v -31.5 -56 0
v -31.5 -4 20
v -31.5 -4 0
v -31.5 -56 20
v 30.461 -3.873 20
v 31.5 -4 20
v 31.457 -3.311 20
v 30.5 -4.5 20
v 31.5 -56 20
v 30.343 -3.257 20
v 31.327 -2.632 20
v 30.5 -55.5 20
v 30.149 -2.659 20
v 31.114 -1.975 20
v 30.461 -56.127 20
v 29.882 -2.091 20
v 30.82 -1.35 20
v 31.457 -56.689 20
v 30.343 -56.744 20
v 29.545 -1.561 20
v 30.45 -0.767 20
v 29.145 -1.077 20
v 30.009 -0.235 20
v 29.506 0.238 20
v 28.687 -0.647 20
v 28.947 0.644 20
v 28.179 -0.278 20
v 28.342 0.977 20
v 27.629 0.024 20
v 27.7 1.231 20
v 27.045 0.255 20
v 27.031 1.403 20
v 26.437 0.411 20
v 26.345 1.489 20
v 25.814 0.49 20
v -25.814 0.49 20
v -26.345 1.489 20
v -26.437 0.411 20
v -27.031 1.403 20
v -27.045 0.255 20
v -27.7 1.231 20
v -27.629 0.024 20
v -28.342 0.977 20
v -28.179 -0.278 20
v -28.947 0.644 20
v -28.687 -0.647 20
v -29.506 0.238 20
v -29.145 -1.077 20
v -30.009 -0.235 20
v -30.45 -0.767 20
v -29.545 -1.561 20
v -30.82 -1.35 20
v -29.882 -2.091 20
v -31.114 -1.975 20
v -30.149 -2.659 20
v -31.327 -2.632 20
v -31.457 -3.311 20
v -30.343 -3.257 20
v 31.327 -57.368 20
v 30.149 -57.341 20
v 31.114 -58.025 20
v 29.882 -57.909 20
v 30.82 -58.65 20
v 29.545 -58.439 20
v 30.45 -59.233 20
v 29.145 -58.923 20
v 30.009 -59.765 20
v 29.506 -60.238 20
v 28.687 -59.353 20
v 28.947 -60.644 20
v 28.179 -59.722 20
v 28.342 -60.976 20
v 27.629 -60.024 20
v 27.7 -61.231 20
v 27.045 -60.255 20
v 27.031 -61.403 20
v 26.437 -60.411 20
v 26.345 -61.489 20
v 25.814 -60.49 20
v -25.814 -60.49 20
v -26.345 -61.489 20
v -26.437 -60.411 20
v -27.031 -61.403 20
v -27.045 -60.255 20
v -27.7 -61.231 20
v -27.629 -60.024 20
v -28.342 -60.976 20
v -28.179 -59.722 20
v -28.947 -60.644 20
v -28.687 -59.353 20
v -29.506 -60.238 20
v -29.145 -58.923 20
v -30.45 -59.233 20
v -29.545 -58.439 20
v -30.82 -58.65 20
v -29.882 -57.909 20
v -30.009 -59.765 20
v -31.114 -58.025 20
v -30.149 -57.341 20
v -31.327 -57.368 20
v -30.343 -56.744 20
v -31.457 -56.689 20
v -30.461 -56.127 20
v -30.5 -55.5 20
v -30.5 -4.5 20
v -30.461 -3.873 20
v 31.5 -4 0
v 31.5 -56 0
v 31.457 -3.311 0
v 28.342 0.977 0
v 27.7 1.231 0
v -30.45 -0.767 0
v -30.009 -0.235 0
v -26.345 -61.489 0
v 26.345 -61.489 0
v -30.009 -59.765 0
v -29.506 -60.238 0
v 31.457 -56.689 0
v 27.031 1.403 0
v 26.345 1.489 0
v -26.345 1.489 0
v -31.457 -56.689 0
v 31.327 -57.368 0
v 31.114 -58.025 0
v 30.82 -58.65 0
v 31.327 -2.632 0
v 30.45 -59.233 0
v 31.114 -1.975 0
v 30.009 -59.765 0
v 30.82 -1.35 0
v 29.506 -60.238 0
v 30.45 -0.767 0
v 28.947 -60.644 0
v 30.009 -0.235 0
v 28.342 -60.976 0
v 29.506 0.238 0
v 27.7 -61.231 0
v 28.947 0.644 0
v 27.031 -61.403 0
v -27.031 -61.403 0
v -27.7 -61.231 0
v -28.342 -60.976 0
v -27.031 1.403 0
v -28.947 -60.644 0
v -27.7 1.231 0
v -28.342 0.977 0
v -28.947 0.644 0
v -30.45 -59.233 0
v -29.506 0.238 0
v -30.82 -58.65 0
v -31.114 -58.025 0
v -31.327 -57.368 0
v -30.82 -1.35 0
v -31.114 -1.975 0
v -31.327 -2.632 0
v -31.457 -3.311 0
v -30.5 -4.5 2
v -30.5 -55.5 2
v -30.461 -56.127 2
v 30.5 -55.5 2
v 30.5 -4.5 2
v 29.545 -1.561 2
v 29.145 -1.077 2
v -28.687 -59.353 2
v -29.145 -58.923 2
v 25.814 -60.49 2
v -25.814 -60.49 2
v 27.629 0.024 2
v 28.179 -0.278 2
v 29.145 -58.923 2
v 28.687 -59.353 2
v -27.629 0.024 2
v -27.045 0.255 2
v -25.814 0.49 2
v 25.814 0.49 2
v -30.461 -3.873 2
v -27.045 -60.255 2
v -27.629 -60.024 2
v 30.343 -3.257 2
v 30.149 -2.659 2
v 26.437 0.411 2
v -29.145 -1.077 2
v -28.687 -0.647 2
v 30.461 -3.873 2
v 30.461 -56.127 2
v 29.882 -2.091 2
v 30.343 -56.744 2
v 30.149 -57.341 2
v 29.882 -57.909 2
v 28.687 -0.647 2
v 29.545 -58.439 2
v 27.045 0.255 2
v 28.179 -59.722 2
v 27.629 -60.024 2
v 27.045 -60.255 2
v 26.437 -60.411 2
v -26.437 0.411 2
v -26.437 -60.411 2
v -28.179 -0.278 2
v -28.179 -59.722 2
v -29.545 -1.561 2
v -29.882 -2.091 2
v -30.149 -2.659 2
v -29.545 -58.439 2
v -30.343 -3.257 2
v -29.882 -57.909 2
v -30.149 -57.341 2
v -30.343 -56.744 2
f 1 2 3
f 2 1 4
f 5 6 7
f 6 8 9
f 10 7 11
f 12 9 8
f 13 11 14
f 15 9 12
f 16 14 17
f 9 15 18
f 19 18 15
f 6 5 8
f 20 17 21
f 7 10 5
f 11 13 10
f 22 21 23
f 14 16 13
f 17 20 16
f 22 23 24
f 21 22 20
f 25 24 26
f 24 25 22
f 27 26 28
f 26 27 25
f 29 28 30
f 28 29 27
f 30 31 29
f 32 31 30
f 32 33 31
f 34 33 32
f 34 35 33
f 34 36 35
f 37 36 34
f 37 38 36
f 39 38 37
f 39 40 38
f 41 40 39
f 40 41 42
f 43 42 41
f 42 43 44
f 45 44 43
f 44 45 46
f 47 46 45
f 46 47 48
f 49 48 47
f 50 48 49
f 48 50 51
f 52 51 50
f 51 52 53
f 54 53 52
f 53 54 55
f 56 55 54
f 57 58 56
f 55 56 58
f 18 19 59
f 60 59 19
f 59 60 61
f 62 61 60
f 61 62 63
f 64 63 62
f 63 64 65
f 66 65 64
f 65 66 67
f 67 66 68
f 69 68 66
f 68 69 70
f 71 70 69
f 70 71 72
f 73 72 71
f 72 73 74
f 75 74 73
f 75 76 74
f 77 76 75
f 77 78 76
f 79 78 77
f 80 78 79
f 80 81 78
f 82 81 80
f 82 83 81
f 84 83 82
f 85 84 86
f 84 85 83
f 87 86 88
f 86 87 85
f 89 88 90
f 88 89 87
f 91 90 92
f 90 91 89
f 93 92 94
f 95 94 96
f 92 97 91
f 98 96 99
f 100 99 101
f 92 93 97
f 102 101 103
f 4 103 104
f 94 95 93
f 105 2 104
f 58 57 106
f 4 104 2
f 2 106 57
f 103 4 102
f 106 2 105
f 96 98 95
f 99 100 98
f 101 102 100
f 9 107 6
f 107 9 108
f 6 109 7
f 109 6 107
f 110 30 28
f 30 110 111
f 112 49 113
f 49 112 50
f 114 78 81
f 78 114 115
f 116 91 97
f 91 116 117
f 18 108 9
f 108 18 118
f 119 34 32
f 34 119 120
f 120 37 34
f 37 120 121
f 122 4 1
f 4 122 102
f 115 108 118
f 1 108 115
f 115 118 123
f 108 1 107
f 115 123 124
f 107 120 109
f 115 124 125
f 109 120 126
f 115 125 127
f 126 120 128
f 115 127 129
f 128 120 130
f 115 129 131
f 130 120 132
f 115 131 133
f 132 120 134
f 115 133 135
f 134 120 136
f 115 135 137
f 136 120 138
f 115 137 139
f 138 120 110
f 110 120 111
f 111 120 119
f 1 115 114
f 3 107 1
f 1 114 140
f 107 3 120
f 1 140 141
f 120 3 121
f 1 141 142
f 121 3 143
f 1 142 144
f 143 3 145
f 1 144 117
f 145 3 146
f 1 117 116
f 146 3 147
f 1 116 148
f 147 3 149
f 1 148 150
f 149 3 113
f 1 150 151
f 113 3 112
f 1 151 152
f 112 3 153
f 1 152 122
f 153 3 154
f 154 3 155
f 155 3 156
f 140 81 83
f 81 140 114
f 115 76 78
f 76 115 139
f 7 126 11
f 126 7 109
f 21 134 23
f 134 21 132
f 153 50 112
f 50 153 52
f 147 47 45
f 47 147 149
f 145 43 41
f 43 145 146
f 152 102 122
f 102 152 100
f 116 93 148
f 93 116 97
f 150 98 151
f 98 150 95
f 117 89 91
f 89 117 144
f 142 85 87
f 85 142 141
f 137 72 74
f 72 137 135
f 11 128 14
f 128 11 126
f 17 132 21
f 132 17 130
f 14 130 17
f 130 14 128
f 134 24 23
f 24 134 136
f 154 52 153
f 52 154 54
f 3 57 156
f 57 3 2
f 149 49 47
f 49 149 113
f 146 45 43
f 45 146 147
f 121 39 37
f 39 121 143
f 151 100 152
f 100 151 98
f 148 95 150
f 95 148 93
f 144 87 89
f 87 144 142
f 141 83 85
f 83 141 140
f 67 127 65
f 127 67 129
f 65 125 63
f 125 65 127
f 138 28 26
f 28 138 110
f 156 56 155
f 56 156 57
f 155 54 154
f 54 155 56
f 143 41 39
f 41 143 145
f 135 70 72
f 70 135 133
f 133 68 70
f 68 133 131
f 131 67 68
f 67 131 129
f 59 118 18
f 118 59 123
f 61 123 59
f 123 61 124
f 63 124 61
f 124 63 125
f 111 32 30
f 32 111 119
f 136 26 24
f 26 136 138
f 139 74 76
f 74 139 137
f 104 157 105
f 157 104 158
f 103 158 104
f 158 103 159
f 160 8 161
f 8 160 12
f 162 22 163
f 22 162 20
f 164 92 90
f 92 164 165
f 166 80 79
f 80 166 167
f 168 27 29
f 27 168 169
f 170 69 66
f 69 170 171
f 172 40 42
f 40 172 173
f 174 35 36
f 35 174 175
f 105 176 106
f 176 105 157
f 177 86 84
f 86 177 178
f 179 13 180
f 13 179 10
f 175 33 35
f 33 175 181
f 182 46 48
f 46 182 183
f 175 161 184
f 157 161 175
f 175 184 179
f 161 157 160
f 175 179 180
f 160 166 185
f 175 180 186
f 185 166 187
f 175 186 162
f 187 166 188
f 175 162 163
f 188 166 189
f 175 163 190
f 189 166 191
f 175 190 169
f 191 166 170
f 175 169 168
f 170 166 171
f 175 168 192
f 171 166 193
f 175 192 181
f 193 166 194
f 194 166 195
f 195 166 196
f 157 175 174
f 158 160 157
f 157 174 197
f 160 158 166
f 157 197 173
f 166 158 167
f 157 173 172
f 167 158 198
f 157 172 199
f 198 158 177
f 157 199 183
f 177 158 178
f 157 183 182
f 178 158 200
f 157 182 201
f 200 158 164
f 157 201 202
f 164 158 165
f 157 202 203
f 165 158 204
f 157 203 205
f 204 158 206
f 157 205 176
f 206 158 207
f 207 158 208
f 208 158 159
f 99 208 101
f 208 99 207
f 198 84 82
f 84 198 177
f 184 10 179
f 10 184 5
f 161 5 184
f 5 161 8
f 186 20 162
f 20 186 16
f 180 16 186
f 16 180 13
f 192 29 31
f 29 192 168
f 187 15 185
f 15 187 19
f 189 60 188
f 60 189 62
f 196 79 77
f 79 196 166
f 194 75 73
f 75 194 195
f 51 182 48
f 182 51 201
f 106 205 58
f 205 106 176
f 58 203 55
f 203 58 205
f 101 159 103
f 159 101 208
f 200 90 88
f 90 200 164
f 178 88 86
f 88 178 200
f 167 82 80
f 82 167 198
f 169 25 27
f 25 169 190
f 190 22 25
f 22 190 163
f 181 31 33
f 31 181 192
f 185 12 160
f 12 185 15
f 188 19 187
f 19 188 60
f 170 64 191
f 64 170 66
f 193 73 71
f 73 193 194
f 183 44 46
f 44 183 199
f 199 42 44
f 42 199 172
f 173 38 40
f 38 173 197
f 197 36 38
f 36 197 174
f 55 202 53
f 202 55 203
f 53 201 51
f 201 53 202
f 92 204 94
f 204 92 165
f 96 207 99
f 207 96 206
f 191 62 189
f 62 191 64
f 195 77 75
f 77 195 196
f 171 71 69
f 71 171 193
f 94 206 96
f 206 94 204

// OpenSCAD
$fn = 50;


difference() {
	union() {
		translate(v = [0, -30.0000000000, 0]) {
			hull() {
				translate(v = [-26.0000000000, 26.0000000000, 0]) {
					cylinder(h = 20, r = 5.5000000000);
				}
				translate(v = [26.0000000000, 26.0000000000, 0]) {
					cylinder(h = 20, r = 5.5000000000);
				}
				translate(v = [-26.0000000000, -26.0000000000, 0]) {
					cylinder(h = 20, r = 5.5000000000);
				}
				translate(v = [26.0000000000, -26.0000000000, 0]) {
					cylinder(h = 20, r = 5.5000000000);
				}
			}
		}
	}
	union() {
		translate(v = [0, -30.0000000000, 2]) {
			hull() {
				translate(v = [-25.5000000000, 25.5000000000, 0]) {
					cylinder(h = 40, r = 5);
				}
				translate(v = [25.5000000000, 25.5000000000, 0]) {
					cylinder(h = 40, r = 5);
				}
				translate(v = [-25.5000000000, -25.5000000000, 0]) {
					cylinder(h = 40, r = 5);
				}
				translate(v = [25.5000000000, -25.5000000000, 0]) {
					cylinder(h = 40, r = 5);
				}
			}
		}
	}
}
